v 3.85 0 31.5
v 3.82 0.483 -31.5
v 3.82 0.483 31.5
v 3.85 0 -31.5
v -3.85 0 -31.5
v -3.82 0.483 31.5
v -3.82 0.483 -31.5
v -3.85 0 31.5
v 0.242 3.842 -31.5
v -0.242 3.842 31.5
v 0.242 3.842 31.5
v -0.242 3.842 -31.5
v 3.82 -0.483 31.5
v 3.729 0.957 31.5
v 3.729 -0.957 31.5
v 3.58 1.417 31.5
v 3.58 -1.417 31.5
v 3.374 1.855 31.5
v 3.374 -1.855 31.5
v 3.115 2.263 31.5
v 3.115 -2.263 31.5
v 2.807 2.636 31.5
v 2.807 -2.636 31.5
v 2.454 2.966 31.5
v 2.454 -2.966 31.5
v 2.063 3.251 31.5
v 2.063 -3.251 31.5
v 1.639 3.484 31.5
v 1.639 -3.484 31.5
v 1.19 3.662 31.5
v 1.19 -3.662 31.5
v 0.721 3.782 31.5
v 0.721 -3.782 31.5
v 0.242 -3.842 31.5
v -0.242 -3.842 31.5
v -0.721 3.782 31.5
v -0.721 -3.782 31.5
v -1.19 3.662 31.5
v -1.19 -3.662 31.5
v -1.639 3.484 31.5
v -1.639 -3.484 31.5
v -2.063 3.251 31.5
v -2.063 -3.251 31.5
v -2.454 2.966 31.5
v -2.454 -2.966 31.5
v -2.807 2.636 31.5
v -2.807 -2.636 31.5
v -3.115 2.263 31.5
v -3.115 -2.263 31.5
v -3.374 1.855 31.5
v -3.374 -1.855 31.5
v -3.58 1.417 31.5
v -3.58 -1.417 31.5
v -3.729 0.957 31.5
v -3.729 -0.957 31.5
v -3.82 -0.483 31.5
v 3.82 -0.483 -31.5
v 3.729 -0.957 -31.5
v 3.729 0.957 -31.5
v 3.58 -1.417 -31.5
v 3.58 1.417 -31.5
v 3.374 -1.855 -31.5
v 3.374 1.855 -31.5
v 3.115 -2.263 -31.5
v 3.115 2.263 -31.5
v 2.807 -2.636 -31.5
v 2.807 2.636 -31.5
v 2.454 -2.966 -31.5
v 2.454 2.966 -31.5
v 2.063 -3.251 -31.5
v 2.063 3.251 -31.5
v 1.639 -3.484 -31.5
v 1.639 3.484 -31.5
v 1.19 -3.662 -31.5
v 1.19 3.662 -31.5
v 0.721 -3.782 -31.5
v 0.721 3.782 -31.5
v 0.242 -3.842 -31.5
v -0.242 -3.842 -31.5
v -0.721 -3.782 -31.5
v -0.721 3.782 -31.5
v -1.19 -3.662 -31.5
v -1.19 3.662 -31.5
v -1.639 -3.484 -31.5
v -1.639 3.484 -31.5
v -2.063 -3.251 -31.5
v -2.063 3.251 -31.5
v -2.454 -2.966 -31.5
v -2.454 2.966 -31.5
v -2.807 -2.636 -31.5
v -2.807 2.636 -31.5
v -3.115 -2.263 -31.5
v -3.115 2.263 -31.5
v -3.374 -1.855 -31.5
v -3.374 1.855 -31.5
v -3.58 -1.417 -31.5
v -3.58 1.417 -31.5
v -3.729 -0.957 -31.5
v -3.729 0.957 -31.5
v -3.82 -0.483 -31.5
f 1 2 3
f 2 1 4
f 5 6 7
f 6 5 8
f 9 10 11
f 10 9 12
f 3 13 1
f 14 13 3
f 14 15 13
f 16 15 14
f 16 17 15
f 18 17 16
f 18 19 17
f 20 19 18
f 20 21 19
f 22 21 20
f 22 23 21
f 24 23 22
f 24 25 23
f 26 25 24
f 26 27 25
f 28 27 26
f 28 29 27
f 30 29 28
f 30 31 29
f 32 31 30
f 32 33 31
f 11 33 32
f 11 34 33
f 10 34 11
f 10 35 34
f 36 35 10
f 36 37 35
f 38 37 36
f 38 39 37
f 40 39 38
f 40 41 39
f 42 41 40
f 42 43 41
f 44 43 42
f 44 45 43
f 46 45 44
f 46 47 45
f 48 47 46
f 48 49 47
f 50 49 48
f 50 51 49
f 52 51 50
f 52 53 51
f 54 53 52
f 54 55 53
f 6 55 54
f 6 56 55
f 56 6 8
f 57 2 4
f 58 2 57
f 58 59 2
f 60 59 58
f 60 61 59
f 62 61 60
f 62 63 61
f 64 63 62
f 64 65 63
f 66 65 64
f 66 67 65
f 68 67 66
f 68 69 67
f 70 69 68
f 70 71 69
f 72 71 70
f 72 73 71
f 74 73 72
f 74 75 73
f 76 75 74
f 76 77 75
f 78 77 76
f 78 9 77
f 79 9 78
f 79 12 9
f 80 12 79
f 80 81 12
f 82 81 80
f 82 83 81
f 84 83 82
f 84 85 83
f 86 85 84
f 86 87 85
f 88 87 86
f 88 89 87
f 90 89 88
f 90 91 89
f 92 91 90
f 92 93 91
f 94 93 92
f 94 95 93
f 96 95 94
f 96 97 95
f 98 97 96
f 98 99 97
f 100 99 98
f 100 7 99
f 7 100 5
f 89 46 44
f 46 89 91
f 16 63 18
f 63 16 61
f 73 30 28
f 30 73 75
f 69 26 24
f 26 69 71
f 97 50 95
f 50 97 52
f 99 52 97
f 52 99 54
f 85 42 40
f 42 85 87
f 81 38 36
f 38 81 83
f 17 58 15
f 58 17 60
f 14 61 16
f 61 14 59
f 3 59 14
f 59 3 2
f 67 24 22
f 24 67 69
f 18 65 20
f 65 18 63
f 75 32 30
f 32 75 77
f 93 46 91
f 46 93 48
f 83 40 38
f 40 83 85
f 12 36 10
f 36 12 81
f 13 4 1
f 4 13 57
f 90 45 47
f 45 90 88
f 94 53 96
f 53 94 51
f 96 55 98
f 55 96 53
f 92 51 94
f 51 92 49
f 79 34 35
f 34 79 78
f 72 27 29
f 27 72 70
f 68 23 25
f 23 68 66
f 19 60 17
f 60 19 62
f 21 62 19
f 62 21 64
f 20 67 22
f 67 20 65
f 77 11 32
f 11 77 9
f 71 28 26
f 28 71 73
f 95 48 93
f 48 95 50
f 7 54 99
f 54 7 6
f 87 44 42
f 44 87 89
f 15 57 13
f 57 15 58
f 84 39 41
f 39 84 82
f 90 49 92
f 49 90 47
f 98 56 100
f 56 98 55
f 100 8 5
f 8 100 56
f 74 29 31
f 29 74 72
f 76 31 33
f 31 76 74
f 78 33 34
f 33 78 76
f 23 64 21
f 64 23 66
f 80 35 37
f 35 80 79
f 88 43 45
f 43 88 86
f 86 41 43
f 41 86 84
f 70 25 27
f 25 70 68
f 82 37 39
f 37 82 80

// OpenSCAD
$fn = 50;


difference() {
	union() {
		translate(v = [0, 0, -31.5000000000]) {
			cylinder(h = 63, r = 3.8500000000);
		}
	}
	union() {
		translate(v = [0, 0, -100.0000000000]) {
			cylinder(h = 200, r = 0);
		}
	}
}
